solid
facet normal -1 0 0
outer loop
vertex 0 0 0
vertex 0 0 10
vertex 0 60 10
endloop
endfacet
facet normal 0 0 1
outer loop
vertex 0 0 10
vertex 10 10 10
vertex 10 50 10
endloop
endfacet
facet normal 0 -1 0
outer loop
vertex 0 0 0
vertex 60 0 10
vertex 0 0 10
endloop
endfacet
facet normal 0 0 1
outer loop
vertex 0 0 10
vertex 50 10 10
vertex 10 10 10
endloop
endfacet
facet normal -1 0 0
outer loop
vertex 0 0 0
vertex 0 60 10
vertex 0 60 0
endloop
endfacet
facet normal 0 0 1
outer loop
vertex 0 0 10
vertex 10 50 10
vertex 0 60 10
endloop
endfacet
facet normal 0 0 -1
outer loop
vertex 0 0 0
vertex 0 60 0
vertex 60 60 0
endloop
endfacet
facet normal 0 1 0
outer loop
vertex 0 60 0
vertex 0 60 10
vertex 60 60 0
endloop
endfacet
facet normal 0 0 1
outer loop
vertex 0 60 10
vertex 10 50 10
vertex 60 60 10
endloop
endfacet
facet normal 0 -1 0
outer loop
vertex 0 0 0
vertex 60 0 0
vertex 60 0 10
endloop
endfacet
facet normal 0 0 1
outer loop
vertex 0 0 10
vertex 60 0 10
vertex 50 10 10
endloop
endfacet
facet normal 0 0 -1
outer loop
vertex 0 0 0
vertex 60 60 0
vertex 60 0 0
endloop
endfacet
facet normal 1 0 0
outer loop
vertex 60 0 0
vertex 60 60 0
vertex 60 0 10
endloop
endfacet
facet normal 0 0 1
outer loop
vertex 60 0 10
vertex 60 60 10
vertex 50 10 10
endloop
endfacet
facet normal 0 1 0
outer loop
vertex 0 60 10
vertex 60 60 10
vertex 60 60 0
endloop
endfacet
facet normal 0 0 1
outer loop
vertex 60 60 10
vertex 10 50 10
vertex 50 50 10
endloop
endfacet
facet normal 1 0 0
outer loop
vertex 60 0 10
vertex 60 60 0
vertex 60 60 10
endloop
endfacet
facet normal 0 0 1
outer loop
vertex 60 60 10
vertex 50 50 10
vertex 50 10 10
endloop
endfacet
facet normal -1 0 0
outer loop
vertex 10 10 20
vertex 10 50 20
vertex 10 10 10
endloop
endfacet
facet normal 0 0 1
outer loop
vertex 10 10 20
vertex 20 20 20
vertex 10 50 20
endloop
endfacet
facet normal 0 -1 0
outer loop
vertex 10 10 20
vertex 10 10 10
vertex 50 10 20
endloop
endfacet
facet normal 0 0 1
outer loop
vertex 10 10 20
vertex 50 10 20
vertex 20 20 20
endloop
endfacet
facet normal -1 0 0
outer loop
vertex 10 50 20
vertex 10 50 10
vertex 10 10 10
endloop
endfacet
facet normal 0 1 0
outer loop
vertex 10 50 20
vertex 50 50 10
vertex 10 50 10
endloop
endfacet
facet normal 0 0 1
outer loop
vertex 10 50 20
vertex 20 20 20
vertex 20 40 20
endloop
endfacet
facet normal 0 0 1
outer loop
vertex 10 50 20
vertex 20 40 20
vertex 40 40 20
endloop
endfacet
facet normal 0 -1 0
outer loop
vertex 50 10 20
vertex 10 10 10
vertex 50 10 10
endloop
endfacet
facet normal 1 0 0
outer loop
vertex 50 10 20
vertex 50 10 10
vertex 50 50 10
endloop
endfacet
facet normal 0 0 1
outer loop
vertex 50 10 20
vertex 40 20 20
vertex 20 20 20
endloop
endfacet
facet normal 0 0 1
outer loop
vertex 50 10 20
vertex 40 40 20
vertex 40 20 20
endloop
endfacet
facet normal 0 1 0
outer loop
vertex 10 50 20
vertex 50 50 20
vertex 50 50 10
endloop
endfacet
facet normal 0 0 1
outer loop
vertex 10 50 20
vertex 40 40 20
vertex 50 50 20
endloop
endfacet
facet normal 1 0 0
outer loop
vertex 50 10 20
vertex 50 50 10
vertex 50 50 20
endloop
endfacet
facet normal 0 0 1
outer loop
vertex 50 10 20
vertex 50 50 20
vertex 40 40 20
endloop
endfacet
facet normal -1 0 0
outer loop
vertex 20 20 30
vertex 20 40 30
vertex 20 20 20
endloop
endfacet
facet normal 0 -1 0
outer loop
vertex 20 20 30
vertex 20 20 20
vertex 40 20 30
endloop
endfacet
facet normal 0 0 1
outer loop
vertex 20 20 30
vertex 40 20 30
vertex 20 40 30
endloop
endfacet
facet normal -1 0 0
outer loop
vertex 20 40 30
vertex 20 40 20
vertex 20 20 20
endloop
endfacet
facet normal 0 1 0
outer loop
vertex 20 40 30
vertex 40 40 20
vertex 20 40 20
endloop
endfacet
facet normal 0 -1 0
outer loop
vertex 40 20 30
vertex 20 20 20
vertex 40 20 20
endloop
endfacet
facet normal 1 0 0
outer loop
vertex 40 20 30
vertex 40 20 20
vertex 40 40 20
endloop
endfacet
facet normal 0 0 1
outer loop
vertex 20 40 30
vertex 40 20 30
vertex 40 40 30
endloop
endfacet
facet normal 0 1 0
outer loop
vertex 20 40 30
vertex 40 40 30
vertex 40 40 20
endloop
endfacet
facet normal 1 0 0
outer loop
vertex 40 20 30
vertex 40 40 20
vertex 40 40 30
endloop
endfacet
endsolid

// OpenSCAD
union() {
    // 1段目: 60x60x10
    cube([60, 60, 10], center = false);

    // 2段目: 40x40x10, 中央揃え
    translate([10, 10, 10])
        cube([40, 40, 10], center = false);

    // 3段目: 20x20x10, 中央揃え
    translate([20, 20, 20])
        cube([20, 20, 10], center = false);
}
